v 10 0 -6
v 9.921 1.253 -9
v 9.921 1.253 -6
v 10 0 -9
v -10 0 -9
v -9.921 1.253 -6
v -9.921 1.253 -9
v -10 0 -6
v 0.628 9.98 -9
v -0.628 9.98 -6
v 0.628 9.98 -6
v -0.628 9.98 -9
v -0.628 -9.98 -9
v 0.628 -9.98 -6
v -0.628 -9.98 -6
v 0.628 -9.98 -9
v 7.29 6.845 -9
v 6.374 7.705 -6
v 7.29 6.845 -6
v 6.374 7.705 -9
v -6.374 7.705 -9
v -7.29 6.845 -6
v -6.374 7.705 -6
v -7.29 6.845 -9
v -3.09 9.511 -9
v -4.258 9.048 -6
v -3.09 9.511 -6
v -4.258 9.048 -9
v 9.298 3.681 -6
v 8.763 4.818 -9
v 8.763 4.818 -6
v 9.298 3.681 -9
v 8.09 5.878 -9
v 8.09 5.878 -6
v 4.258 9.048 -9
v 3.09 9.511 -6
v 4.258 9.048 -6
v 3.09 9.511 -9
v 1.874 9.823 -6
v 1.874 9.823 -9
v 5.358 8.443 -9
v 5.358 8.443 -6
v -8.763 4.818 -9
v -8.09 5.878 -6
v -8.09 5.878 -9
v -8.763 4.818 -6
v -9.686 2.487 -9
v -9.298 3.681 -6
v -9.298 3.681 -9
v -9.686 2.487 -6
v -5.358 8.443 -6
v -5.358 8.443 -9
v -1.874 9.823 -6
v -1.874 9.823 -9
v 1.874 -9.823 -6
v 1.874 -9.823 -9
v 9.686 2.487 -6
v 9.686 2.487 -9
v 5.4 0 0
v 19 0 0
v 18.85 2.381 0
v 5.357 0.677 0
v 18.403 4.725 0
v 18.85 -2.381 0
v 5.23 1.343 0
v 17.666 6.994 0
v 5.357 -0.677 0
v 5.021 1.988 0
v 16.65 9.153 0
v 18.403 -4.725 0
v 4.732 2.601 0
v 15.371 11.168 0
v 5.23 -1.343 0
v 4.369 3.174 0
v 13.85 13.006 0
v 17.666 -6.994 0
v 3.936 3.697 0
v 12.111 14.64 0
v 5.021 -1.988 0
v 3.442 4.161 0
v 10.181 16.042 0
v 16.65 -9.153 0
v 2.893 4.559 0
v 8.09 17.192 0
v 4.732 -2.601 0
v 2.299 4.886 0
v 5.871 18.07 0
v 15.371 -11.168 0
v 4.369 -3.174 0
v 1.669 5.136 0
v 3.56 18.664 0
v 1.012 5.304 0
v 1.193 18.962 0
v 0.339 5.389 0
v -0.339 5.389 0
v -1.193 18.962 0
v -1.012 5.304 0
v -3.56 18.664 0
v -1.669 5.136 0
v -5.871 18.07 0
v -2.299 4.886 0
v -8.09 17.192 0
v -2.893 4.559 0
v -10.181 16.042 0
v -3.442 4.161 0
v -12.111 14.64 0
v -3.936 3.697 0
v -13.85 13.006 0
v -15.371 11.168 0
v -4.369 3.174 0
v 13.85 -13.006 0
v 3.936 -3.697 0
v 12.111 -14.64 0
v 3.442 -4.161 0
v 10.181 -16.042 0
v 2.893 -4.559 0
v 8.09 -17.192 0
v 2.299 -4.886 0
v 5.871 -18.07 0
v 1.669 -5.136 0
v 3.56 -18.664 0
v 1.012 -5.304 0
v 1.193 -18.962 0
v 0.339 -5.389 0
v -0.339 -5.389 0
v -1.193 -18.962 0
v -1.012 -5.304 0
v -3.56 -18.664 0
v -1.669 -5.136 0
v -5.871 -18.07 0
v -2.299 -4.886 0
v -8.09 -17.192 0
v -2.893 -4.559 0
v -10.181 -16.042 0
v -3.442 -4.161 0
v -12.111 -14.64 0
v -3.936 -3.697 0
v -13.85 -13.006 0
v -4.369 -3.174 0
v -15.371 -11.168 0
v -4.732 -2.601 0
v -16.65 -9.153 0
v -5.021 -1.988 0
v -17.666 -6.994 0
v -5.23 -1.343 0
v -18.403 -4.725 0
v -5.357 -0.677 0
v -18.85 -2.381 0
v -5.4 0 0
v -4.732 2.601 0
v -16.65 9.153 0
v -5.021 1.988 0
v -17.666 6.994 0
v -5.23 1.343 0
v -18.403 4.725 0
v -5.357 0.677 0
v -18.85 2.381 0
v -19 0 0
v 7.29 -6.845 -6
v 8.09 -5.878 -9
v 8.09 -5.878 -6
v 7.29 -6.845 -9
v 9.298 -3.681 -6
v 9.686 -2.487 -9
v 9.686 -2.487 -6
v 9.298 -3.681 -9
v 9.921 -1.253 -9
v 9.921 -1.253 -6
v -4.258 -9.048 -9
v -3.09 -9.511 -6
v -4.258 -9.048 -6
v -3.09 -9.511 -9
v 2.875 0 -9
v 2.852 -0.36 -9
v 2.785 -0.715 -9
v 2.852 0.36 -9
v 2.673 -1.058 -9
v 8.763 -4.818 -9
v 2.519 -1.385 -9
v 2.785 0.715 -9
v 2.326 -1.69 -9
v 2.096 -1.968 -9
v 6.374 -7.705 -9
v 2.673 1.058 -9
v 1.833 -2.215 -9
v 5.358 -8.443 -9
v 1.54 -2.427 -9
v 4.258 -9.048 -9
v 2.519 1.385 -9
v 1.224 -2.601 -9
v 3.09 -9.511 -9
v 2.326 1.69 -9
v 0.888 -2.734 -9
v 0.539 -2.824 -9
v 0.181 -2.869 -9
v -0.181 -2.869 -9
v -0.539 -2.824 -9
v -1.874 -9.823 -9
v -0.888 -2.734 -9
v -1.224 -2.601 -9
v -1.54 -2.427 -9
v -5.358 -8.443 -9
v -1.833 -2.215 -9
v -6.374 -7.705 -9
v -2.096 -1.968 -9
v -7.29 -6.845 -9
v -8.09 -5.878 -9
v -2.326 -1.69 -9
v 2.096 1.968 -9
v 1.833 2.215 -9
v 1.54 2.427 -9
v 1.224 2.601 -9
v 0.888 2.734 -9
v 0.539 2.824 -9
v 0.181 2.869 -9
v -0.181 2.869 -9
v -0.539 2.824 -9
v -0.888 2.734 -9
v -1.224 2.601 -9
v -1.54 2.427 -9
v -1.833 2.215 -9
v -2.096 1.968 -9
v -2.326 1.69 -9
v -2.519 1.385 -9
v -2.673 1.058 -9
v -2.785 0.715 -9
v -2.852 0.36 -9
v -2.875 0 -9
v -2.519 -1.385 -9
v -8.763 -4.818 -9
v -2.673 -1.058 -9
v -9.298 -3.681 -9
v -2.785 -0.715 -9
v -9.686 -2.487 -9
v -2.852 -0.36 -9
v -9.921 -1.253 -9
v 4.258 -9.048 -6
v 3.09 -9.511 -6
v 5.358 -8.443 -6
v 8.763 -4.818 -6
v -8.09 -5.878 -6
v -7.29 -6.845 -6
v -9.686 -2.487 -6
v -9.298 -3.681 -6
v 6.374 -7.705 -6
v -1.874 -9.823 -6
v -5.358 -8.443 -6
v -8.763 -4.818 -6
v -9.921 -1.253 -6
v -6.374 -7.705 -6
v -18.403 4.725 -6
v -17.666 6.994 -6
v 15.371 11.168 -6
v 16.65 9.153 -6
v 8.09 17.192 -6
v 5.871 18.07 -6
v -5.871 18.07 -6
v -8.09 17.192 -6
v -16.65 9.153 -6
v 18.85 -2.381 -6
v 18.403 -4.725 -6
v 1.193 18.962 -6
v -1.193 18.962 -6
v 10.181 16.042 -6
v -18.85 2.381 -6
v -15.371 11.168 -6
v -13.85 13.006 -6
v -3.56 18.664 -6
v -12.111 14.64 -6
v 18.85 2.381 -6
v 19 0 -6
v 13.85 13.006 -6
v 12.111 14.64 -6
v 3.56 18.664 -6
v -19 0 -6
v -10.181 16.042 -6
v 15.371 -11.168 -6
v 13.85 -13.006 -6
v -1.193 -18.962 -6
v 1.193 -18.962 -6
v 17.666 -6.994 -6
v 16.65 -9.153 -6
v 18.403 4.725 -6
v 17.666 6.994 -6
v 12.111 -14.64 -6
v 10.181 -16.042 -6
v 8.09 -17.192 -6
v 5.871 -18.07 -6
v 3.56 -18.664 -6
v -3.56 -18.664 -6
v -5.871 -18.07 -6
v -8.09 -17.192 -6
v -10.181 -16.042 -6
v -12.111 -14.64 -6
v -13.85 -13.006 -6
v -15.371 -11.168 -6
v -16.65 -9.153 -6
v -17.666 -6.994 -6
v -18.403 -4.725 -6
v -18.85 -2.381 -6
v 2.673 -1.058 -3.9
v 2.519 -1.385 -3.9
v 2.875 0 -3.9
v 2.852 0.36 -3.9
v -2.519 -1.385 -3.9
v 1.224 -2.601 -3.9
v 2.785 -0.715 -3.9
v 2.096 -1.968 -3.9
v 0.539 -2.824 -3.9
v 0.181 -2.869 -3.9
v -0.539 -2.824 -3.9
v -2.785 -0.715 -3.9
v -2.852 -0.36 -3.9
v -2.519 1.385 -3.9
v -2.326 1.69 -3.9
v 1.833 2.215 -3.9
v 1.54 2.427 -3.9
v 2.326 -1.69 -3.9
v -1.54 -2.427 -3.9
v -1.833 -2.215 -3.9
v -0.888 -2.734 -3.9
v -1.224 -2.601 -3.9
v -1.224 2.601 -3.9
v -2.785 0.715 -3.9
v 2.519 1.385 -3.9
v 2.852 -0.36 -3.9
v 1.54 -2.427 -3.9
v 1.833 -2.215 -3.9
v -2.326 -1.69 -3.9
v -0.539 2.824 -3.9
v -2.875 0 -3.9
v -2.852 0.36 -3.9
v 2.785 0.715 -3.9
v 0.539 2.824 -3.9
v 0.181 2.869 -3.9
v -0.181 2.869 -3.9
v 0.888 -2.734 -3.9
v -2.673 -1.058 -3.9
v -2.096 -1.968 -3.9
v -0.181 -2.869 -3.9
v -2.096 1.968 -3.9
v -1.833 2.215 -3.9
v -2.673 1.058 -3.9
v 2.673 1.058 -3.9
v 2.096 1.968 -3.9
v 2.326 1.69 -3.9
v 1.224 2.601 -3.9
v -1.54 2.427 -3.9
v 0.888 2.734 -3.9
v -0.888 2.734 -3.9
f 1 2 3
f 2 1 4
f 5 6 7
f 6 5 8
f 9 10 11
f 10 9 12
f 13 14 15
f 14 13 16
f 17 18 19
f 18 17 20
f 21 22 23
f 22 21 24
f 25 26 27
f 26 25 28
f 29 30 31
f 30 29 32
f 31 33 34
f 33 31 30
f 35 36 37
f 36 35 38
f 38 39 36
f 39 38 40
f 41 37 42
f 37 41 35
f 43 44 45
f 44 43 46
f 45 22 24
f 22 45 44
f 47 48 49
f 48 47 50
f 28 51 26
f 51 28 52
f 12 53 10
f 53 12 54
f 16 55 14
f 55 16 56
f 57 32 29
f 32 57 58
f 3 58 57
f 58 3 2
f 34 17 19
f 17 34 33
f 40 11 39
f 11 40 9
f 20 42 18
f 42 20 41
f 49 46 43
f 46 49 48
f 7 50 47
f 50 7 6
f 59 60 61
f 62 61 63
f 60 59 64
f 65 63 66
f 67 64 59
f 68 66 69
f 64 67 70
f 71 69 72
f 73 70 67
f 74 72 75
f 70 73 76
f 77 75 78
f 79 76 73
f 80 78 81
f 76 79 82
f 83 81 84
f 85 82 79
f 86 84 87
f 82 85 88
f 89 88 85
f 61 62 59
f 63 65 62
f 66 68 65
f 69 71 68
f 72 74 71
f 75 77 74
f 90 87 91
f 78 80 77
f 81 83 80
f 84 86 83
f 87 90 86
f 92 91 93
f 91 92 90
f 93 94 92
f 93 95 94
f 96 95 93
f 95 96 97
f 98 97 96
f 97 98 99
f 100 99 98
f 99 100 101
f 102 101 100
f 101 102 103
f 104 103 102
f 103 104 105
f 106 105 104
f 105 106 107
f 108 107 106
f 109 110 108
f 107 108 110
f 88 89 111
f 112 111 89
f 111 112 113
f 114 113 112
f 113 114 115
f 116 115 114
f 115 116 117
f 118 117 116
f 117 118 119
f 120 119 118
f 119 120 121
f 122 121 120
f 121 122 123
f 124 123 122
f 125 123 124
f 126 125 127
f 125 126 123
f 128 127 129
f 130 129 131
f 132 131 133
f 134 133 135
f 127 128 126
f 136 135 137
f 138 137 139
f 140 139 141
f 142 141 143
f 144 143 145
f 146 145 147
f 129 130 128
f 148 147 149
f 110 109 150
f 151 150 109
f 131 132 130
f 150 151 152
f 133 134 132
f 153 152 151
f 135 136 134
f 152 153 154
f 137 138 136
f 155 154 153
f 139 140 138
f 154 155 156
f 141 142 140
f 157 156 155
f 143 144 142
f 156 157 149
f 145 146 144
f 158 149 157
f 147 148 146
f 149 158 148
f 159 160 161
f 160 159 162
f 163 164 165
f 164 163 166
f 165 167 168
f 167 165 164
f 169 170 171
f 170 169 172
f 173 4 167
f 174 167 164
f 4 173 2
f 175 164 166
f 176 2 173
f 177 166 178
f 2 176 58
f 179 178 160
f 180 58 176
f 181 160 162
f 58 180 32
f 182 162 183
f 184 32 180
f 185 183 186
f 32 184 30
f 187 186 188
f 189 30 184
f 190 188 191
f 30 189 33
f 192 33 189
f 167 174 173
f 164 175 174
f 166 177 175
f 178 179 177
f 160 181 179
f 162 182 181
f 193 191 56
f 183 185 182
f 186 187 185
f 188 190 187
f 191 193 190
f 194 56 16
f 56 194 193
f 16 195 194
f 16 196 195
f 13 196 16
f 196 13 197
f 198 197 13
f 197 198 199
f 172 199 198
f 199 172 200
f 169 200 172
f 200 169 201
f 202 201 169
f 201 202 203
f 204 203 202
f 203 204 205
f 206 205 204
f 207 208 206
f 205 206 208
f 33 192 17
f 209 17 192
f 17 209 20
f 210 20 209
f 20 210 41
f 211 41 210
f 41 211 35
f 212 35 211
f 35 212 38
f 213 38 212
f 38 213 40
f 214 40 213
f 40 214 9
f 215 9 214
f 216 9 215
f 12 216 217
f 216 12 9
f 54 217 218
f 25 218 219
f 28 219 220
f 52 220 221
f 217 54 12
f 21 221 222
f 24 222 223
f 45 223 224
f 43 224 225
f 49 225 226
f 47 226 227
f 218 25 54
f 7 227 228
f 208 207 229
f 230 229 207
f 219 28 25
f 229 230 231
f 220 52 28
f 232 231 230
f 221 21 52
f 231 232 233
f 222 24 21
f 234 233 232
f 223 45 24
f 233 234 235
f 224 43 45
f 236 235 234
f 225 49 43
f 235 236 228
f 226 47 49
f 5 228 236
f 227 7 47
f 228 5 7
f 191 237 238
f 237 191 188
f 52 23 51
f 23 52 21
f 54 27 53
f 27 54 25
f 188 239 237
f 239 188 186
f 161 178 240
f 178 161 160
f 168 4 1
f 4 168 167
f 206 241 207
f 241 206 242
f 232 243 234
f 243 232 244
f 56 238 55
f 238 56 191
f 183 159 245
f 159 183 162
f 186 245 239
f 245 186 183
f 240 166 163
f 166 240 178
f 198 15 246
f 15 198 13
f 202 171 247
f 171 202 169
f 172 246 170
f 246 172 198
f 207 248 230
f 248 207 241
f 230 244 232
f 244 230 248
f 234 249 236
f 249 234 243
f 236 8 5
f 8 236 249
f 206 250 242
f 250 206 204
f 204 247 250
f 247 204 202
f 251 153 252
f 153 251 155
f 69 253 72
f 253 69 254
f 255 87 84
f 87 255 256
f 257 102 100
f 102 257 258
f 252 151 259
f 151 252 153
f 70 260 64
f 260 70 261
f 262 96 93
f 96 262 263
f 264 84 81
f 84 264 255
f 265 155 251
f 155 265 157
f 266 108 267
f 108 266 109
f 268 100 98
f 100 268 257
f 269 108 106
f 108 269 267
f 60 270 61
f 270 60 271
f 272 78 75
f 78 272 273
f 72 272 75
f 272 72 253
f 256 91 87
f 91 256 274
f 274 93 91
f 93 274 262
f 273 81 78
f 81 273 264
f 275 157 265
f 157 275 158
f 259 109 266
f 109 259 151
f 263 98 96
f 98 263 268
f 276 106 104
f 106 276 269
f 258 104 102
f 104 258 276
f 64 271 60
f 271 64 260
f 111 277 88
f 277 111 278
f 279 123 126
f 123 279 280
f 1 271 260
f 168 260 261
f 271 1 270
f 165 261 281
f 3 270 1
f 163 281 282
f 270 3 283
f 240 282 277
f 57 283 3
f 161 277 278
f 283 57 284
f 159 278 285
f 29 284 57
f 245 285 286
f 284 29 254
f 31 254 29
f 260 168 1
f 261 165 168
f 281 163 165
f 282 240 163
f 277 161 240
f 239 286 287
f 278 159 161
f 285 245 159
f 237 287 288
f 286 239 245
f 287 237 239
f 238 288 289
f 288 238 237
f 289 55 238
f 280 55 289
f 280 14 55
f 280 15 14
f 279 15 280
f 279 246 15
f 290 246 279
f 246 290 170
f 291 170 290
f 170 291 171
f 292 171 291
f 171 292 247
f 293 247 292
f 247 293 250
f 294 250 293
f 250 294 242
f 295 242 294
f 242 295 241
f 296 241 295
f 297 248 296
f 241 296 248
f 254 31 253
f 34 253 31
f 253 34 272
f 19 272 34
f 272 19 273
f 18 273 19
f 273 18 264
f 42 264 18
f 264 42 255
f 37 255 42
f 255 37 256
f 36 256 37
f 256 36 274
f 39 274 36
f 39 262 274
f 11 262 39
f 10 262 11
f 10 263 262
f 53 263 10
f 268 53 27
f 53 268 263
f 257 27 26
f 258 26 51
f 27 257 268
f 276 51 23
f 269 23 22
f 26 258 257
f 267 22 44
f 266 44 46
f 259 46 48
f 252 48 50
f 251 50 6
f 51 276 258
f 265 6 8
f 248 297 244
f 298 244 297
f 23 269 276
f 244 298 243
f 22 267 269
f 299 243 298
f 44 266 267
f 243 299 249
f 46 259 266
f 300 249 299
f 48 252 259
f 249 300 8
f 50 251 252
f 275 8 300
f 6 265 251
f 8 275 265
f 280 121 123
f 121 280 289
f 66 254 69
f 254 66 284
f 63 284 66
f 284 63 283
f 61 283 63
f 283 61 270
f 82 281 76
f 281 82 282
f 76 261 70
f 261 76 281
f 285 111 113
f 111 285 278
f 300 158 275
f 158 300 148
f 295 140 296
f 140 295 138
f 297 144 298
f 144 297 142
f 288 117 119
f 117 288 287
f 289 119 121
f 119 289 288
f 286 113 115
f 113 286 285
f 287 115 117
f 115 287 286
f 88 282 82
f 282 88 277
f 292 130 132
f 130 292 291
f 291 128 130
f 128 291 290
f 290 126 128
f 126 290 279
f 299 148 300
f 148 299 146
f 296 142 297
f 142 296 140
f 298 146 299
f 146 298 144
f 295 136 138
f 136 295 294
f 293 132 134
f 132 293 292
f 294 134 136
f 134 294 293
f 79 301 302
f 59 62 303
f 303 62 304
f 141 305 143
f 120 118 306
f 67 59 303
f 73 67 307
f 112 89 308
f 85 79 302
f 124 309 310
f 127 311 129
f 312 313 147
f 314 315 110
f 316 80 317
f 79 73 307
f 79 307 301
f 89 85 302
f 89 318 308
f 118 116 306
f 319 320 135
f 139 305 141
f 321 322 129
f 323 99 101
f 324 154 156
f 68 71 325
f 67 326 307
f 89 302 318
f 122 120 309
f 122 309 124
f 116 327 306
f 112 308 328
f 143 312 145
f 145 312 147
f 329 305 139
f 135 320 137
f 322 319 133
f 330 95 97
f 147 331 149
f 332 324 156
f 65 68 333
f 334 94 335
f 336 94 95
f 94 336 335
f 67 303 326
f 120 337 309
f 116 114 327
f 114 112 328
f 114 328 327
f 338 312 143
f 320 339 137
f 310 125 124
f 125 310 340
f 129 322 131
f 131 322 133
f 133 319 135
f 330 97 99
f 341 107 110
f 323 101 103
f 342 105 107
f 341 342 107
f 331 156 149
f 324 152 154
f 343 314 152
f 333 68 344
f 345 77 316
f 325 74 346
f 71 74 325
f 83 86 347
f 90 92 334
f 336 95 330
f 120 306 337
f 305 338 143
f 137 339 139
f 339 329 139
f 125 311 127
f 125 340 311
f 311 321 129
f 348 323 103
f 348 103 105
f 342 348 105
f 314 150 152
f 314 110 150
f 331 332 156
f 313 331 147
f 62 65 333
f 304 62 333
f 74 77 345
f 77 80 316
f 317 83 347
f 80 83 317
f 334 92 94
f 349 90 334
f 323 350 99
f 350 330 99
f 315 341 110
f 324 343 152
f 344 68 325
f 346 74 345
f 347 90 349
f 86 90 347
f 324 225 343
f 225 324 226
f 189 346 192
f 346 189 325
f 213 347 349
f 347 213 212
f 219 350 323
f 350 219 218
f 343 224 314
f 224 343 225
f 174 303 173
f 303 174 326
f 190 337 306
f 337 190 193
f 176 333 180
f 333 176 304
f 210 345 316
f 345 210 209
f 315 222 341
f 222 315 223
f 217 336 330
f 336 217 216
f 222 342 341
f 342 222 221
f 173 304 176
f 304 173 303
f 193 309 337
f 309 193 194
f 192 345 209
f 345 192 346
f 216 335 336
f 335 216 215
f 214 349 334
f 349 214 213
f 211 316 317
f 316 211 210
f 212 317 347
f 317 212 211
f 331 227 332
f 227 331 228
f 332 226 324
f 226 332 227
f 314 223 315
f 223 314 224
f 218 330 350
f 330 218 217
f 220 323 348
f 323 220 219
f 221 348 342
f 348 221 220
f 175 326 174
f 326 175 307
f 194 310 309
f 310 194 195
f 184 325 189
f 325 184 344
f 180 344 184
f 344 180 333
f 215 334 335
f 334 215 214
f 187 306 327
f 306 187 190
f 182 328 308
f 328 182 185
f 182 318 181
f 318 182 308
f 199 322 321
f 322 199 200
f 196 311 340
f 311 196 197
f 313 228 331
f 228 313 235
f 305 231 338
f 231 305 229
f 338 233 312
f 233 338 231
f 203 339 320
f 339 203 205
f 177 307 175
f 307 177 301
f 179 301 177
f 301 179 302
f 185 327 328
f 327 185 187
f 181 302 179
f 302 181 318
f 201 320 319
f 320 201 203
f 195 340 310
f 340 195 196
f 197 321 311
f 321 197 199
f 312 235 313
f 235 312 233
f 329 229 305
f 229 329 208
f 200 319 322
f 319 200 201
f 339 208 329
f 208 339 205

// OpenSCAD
$fn = 50;


difference() {
	union() {
		translate(v = [0, 0, -9.0000000000]) {
			cylinder(h = 9, r = 10.0000000000);
		}
		translate(v = [0, 0, -6.0000000000]) {
			cylinder(h = 6, r = 19.0000000000);
		}
	}
	union() {
		translate(v = [0, 0, 0]) {
			rotate(a = [0, 0, 0]) {
				difference() {
					union() {
						#translate(v = [0, 0, -9.0000000000]) {
							cylinder(h = 9, r = 2.6000000000);
						}
						#translate(v = [0, 0, -3.9000000000]) {
							cylinder(h = 3.9000000000, r = 10.0000000000, r1 = 2.8750000000, r2 = 5.4000000000);
						}
						#translate(v = [0, 0, -9.0000000000]) {
							cylinder(h = 9, r = 2.8750000000);
						}
						#translate(v = [0, 0, -9.0000000000]) {
							cylinder(h = 9, r = 2.6000000000);
						}
					}
					union();
				}
			}
		}
	}
}
